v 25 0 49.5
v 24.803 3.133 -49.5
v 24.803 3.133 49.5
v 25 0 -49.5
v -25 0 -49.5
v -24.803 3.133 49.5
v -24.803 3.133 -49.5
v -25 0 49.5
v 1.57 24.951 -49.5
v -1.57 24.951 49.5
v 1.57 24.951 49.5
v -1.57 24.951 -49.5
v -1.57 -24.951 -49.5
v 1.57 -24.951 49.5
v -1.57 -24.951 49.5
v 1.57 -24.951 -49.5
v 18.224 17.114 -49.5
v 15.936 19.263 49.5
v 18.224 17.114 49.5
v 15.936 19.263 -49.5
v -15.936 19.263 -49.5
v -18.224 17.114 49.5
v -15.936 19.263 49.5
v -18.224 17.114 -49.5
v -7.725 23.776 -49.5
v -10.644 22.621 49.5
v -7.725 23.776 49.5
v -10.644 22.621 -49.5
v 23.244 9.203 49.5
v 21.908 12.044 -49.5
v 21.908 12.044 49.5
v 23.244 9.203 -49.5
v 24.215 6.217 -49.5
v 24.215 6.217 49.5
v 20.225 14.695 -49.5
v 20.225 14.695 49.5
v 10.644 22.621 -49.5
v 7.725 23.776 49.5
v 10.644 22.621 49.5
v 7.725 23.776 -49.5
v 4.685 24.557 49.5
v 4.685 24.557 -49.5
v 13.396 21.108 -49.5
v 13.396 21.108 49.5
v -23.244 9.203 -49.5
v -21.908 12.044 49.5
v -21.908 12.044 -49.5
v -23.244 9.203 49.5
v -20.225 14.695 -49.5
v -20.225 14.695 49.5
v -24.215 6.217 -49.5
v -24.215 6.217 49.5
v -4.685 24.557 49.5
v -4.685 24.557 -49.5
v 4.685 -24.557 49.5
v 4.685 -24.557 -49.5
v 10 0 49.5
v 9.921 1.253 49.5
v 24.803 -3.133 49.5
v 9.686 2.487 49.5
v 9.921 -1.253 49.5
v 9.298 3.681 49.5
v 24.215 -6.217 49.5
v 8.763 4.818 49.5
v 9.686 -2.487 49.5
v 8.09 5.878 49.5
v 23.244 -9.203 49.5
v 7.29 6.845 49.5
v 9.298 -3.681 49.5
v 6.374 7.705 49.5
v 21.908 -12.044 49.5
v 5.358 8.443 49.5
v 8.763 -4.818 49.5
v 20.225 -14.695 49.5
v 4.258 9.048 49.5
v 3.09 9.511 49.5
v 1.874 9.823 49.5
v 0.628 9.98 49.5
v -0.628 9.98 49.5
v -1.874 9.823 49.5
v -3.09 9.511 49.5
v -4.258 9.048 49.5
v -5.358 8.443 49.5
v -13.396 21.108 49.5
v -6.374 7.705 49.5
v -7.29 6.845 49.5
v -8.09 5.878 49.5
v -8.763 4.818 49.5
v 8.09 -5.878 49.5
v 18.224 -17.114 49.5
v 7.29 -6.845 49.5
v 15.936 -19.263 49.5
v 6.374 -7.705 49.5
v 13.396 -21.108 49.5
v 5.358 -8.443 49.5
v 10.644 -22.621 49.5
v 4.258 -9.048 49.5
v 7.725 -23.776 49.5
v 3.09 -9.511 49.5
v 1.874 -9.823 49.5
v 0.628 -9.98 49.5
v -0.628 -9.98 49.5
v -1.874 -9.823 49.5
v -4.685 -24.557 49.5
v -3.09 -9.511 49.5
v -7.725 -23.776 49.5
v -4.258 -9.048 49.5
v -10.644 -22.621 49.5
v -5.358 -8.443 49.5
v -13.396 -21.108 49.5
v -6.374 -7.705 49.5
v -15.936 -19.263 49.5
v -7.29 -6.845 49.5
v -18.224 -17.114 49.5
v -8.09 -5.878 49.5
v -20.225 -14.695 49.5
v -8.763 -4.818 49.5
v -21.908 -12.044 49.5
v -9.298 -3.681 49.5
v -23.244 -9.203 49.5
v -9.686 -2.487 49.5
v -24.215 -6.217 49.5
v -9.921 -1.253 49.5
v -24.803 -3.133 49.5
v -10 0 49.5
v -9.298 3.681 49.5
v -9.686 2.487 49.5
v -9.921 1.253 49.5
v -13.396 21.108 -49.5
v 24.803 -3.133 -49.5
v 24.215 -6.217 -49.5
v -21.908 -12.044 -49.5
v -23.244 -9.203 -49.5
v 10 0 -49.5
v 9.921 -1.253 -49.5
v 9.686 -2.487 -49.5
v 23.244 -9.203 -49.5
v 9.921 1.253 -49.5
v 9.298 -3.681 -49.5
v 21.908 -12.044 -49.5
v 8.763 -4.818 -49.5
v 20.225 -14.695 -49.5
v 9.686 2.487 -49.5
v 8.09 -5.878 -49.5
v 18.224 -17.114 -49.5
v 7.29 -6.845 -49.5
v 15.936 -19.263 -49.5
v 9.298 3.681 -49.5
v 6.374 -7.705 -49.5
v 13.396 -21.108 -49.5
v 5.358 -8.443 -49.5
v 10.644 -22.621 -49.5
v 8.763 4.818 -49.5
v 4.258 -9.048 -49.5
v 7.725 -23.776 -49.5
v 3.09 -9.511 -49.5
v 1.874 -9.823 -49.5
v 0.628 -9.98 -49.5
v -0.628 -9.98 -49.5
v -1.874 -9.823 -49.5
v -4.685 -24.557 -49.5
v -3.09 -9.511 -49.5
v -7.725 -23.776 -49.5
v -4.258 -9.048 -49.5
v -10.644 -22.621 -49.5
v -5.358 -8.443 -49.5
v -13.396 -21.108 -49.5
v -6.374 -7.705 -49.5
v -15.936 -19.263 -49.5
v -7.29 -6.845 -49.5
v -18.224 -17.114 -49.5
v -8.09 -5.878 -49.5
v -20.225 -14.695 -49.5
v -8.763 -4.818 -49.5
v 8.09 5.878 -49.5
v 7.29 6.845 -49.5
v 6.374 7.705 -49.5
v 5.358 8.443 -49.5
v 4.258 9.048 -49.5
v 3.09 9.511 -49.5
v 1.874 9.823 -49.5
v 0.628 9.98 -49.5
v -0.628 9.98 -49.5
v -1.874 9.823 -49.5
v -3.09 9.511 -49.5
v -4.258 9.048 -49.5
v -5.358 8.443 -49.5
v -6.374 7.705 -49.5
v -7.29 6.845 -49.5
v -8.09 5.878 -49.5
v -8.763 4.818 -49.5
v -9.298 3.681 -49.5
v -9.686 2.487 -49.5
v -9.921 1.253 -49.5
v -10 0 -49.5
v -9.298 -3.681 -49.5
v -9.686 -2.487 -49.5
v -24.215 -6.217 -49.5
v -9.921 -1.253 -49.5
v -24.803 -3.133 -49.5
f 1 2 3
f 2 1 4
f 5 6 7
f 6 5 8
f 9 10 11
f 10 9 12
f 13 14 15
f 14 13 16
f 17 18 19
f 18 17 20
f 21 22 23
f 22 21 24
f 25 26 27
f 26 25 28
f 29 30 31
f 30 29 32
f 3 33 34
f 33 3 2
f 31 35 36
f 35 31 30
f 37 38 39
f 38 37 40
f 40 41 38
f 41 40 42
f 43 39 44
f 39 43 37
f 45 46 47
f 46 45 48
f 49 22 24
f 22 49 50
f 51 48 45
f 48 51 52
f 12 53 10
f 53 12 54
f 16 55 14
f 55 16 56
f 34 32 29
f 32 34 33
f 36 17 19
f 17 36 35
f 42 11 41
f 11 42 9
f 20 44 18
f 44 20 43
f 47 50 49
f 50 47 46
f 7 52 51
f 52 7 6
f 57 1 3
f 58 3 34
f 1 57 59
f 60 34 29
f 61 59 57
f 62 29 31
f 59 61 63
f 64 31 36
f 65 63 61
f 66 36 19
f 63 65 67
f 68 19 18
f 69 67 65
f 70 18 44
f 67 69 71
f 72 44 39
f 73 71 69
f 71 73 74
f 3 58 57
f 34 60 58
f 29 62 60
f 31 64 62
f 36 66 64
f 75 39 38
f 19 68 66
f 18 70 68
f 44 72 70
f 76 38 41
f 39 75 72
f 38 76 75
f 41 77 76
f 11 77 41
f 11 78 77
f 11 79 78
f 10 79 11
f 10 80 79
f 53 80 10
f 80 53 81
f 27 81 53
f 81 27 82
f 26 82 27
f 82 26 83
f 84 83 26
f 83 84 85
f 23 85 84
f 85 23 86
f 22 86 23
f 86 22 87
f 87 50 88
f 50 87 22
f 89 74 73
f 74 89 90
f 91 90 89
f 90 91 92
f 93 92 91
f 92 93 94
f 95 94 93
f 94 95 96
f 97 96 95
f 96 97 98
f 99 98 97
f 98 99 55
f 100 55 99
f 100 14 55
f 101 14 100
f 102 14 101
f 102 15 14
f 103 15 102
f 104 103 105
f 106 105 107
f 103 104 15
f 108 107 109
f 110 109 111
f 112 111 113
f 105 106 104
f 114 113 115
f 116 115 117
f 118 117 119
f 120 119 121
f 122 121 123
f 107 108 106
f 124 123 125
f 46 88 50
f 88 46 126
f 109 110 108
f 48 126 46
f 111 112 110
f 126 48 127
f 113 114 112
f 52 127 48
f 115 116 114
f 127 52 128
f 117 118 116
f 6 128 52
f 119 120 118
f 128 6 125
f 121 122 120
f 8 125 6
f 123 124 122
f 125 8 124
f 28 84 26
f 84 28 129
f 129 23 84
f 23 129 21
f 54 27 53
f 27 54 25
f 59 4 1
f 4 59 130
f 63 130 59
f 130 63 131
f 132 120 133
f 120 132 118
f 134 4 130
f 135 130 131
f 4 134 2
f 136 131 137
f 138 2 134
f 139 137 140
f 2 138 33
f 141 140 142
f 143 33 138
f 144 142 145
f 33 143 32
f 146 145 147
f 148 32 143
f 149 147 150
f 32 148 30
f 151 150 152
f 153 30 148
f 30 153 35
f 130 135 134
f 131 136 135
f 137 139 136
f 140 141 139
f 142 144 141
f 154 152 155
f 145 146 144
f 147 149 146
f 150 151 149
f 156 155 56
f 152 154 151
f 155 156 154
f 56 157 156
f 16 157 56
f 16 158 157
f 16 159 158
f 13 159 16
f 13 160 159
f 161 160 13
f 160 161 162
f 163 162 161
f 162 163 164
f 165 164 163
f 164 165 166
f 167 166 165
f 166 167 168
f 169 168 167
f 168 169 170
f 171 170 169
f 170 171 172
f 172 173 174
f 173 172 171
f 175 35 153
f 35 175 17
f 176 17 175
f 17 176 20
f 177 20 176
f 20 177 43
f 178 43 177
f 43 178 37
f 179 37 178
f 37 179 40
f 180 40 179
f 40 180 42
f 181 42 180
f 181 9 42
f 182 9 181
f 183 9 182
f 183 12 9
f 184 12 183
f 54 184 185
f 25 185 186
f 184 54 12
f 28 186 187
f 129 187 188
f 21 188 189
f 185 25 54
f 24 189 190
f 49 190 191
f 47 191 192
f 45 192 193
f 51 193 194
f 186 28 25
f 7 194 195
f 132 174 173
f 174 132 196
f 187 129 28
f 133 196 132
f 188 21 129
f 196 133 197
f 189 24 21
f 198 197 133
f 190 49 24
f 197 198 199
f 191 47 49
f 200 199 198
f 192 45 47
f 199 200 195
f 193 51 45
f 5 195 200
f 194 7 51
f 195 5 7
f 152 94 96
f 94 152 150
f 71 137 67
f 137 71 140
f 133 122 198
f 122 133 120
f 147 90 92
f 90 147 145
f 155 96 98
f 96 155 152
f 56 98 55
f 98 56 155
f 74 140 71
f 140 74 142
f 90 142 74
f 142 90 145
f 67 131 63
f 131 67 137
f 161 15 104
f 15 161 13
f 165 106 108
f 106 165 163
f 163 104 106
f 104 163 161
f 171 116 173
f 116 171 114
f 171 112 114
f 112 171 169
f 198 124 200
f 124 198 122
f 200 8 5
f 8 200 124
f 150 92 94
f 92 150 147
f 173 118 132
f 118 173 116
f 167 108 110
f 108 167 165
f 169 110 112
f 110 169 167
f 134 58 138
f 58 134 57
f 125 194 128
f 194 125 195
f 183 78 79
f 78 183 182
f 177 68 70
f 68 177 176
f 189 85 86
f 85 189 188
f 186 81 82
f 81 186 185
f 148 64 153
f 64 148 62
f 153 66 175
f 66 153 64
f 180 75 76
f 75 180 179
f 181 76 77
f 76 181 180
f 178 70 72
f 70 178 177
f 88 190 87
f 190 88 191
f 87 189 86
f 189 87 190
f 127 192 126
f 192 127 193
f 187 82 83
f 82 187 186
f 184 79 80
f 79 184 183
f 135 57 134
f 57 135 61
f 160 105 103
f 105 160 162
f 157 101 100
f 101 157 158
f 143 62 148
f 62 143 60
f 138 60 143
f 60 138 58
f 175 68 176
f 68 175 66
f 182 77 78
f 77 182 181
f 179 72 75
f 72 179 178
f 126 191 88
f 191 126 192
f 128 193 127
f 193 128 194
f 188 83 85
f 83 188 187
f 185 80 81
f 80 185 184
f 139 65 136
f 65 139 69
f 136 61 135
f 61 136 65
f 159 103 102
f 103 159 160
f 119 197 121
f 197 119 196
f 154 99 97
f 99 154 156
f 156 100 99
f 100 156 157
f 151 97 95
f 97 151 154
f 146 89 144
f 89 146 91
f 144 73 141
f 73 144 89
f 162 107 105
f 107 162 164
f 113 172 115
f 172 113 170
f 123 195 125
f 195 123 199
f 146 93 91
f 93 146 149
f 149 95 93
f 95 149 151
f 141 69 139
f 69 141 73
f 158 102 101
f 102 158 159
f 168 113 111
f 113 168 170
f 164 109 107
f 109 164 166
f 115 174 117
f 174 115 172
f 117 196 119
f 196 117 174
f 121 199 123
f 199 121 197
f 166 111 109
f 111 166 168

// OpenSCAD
$fn = 50;


difference() {
	union() {
		translate(v = [0, 0, -49.5000000000]) {
			cylinder(h = 99, r = 25.0000000000);
		}
	}
	union() {
		translate(v = [0, 0, -100.0000000000]) {
			cylinder(h = 200, r = 10);
		}
	}
}
